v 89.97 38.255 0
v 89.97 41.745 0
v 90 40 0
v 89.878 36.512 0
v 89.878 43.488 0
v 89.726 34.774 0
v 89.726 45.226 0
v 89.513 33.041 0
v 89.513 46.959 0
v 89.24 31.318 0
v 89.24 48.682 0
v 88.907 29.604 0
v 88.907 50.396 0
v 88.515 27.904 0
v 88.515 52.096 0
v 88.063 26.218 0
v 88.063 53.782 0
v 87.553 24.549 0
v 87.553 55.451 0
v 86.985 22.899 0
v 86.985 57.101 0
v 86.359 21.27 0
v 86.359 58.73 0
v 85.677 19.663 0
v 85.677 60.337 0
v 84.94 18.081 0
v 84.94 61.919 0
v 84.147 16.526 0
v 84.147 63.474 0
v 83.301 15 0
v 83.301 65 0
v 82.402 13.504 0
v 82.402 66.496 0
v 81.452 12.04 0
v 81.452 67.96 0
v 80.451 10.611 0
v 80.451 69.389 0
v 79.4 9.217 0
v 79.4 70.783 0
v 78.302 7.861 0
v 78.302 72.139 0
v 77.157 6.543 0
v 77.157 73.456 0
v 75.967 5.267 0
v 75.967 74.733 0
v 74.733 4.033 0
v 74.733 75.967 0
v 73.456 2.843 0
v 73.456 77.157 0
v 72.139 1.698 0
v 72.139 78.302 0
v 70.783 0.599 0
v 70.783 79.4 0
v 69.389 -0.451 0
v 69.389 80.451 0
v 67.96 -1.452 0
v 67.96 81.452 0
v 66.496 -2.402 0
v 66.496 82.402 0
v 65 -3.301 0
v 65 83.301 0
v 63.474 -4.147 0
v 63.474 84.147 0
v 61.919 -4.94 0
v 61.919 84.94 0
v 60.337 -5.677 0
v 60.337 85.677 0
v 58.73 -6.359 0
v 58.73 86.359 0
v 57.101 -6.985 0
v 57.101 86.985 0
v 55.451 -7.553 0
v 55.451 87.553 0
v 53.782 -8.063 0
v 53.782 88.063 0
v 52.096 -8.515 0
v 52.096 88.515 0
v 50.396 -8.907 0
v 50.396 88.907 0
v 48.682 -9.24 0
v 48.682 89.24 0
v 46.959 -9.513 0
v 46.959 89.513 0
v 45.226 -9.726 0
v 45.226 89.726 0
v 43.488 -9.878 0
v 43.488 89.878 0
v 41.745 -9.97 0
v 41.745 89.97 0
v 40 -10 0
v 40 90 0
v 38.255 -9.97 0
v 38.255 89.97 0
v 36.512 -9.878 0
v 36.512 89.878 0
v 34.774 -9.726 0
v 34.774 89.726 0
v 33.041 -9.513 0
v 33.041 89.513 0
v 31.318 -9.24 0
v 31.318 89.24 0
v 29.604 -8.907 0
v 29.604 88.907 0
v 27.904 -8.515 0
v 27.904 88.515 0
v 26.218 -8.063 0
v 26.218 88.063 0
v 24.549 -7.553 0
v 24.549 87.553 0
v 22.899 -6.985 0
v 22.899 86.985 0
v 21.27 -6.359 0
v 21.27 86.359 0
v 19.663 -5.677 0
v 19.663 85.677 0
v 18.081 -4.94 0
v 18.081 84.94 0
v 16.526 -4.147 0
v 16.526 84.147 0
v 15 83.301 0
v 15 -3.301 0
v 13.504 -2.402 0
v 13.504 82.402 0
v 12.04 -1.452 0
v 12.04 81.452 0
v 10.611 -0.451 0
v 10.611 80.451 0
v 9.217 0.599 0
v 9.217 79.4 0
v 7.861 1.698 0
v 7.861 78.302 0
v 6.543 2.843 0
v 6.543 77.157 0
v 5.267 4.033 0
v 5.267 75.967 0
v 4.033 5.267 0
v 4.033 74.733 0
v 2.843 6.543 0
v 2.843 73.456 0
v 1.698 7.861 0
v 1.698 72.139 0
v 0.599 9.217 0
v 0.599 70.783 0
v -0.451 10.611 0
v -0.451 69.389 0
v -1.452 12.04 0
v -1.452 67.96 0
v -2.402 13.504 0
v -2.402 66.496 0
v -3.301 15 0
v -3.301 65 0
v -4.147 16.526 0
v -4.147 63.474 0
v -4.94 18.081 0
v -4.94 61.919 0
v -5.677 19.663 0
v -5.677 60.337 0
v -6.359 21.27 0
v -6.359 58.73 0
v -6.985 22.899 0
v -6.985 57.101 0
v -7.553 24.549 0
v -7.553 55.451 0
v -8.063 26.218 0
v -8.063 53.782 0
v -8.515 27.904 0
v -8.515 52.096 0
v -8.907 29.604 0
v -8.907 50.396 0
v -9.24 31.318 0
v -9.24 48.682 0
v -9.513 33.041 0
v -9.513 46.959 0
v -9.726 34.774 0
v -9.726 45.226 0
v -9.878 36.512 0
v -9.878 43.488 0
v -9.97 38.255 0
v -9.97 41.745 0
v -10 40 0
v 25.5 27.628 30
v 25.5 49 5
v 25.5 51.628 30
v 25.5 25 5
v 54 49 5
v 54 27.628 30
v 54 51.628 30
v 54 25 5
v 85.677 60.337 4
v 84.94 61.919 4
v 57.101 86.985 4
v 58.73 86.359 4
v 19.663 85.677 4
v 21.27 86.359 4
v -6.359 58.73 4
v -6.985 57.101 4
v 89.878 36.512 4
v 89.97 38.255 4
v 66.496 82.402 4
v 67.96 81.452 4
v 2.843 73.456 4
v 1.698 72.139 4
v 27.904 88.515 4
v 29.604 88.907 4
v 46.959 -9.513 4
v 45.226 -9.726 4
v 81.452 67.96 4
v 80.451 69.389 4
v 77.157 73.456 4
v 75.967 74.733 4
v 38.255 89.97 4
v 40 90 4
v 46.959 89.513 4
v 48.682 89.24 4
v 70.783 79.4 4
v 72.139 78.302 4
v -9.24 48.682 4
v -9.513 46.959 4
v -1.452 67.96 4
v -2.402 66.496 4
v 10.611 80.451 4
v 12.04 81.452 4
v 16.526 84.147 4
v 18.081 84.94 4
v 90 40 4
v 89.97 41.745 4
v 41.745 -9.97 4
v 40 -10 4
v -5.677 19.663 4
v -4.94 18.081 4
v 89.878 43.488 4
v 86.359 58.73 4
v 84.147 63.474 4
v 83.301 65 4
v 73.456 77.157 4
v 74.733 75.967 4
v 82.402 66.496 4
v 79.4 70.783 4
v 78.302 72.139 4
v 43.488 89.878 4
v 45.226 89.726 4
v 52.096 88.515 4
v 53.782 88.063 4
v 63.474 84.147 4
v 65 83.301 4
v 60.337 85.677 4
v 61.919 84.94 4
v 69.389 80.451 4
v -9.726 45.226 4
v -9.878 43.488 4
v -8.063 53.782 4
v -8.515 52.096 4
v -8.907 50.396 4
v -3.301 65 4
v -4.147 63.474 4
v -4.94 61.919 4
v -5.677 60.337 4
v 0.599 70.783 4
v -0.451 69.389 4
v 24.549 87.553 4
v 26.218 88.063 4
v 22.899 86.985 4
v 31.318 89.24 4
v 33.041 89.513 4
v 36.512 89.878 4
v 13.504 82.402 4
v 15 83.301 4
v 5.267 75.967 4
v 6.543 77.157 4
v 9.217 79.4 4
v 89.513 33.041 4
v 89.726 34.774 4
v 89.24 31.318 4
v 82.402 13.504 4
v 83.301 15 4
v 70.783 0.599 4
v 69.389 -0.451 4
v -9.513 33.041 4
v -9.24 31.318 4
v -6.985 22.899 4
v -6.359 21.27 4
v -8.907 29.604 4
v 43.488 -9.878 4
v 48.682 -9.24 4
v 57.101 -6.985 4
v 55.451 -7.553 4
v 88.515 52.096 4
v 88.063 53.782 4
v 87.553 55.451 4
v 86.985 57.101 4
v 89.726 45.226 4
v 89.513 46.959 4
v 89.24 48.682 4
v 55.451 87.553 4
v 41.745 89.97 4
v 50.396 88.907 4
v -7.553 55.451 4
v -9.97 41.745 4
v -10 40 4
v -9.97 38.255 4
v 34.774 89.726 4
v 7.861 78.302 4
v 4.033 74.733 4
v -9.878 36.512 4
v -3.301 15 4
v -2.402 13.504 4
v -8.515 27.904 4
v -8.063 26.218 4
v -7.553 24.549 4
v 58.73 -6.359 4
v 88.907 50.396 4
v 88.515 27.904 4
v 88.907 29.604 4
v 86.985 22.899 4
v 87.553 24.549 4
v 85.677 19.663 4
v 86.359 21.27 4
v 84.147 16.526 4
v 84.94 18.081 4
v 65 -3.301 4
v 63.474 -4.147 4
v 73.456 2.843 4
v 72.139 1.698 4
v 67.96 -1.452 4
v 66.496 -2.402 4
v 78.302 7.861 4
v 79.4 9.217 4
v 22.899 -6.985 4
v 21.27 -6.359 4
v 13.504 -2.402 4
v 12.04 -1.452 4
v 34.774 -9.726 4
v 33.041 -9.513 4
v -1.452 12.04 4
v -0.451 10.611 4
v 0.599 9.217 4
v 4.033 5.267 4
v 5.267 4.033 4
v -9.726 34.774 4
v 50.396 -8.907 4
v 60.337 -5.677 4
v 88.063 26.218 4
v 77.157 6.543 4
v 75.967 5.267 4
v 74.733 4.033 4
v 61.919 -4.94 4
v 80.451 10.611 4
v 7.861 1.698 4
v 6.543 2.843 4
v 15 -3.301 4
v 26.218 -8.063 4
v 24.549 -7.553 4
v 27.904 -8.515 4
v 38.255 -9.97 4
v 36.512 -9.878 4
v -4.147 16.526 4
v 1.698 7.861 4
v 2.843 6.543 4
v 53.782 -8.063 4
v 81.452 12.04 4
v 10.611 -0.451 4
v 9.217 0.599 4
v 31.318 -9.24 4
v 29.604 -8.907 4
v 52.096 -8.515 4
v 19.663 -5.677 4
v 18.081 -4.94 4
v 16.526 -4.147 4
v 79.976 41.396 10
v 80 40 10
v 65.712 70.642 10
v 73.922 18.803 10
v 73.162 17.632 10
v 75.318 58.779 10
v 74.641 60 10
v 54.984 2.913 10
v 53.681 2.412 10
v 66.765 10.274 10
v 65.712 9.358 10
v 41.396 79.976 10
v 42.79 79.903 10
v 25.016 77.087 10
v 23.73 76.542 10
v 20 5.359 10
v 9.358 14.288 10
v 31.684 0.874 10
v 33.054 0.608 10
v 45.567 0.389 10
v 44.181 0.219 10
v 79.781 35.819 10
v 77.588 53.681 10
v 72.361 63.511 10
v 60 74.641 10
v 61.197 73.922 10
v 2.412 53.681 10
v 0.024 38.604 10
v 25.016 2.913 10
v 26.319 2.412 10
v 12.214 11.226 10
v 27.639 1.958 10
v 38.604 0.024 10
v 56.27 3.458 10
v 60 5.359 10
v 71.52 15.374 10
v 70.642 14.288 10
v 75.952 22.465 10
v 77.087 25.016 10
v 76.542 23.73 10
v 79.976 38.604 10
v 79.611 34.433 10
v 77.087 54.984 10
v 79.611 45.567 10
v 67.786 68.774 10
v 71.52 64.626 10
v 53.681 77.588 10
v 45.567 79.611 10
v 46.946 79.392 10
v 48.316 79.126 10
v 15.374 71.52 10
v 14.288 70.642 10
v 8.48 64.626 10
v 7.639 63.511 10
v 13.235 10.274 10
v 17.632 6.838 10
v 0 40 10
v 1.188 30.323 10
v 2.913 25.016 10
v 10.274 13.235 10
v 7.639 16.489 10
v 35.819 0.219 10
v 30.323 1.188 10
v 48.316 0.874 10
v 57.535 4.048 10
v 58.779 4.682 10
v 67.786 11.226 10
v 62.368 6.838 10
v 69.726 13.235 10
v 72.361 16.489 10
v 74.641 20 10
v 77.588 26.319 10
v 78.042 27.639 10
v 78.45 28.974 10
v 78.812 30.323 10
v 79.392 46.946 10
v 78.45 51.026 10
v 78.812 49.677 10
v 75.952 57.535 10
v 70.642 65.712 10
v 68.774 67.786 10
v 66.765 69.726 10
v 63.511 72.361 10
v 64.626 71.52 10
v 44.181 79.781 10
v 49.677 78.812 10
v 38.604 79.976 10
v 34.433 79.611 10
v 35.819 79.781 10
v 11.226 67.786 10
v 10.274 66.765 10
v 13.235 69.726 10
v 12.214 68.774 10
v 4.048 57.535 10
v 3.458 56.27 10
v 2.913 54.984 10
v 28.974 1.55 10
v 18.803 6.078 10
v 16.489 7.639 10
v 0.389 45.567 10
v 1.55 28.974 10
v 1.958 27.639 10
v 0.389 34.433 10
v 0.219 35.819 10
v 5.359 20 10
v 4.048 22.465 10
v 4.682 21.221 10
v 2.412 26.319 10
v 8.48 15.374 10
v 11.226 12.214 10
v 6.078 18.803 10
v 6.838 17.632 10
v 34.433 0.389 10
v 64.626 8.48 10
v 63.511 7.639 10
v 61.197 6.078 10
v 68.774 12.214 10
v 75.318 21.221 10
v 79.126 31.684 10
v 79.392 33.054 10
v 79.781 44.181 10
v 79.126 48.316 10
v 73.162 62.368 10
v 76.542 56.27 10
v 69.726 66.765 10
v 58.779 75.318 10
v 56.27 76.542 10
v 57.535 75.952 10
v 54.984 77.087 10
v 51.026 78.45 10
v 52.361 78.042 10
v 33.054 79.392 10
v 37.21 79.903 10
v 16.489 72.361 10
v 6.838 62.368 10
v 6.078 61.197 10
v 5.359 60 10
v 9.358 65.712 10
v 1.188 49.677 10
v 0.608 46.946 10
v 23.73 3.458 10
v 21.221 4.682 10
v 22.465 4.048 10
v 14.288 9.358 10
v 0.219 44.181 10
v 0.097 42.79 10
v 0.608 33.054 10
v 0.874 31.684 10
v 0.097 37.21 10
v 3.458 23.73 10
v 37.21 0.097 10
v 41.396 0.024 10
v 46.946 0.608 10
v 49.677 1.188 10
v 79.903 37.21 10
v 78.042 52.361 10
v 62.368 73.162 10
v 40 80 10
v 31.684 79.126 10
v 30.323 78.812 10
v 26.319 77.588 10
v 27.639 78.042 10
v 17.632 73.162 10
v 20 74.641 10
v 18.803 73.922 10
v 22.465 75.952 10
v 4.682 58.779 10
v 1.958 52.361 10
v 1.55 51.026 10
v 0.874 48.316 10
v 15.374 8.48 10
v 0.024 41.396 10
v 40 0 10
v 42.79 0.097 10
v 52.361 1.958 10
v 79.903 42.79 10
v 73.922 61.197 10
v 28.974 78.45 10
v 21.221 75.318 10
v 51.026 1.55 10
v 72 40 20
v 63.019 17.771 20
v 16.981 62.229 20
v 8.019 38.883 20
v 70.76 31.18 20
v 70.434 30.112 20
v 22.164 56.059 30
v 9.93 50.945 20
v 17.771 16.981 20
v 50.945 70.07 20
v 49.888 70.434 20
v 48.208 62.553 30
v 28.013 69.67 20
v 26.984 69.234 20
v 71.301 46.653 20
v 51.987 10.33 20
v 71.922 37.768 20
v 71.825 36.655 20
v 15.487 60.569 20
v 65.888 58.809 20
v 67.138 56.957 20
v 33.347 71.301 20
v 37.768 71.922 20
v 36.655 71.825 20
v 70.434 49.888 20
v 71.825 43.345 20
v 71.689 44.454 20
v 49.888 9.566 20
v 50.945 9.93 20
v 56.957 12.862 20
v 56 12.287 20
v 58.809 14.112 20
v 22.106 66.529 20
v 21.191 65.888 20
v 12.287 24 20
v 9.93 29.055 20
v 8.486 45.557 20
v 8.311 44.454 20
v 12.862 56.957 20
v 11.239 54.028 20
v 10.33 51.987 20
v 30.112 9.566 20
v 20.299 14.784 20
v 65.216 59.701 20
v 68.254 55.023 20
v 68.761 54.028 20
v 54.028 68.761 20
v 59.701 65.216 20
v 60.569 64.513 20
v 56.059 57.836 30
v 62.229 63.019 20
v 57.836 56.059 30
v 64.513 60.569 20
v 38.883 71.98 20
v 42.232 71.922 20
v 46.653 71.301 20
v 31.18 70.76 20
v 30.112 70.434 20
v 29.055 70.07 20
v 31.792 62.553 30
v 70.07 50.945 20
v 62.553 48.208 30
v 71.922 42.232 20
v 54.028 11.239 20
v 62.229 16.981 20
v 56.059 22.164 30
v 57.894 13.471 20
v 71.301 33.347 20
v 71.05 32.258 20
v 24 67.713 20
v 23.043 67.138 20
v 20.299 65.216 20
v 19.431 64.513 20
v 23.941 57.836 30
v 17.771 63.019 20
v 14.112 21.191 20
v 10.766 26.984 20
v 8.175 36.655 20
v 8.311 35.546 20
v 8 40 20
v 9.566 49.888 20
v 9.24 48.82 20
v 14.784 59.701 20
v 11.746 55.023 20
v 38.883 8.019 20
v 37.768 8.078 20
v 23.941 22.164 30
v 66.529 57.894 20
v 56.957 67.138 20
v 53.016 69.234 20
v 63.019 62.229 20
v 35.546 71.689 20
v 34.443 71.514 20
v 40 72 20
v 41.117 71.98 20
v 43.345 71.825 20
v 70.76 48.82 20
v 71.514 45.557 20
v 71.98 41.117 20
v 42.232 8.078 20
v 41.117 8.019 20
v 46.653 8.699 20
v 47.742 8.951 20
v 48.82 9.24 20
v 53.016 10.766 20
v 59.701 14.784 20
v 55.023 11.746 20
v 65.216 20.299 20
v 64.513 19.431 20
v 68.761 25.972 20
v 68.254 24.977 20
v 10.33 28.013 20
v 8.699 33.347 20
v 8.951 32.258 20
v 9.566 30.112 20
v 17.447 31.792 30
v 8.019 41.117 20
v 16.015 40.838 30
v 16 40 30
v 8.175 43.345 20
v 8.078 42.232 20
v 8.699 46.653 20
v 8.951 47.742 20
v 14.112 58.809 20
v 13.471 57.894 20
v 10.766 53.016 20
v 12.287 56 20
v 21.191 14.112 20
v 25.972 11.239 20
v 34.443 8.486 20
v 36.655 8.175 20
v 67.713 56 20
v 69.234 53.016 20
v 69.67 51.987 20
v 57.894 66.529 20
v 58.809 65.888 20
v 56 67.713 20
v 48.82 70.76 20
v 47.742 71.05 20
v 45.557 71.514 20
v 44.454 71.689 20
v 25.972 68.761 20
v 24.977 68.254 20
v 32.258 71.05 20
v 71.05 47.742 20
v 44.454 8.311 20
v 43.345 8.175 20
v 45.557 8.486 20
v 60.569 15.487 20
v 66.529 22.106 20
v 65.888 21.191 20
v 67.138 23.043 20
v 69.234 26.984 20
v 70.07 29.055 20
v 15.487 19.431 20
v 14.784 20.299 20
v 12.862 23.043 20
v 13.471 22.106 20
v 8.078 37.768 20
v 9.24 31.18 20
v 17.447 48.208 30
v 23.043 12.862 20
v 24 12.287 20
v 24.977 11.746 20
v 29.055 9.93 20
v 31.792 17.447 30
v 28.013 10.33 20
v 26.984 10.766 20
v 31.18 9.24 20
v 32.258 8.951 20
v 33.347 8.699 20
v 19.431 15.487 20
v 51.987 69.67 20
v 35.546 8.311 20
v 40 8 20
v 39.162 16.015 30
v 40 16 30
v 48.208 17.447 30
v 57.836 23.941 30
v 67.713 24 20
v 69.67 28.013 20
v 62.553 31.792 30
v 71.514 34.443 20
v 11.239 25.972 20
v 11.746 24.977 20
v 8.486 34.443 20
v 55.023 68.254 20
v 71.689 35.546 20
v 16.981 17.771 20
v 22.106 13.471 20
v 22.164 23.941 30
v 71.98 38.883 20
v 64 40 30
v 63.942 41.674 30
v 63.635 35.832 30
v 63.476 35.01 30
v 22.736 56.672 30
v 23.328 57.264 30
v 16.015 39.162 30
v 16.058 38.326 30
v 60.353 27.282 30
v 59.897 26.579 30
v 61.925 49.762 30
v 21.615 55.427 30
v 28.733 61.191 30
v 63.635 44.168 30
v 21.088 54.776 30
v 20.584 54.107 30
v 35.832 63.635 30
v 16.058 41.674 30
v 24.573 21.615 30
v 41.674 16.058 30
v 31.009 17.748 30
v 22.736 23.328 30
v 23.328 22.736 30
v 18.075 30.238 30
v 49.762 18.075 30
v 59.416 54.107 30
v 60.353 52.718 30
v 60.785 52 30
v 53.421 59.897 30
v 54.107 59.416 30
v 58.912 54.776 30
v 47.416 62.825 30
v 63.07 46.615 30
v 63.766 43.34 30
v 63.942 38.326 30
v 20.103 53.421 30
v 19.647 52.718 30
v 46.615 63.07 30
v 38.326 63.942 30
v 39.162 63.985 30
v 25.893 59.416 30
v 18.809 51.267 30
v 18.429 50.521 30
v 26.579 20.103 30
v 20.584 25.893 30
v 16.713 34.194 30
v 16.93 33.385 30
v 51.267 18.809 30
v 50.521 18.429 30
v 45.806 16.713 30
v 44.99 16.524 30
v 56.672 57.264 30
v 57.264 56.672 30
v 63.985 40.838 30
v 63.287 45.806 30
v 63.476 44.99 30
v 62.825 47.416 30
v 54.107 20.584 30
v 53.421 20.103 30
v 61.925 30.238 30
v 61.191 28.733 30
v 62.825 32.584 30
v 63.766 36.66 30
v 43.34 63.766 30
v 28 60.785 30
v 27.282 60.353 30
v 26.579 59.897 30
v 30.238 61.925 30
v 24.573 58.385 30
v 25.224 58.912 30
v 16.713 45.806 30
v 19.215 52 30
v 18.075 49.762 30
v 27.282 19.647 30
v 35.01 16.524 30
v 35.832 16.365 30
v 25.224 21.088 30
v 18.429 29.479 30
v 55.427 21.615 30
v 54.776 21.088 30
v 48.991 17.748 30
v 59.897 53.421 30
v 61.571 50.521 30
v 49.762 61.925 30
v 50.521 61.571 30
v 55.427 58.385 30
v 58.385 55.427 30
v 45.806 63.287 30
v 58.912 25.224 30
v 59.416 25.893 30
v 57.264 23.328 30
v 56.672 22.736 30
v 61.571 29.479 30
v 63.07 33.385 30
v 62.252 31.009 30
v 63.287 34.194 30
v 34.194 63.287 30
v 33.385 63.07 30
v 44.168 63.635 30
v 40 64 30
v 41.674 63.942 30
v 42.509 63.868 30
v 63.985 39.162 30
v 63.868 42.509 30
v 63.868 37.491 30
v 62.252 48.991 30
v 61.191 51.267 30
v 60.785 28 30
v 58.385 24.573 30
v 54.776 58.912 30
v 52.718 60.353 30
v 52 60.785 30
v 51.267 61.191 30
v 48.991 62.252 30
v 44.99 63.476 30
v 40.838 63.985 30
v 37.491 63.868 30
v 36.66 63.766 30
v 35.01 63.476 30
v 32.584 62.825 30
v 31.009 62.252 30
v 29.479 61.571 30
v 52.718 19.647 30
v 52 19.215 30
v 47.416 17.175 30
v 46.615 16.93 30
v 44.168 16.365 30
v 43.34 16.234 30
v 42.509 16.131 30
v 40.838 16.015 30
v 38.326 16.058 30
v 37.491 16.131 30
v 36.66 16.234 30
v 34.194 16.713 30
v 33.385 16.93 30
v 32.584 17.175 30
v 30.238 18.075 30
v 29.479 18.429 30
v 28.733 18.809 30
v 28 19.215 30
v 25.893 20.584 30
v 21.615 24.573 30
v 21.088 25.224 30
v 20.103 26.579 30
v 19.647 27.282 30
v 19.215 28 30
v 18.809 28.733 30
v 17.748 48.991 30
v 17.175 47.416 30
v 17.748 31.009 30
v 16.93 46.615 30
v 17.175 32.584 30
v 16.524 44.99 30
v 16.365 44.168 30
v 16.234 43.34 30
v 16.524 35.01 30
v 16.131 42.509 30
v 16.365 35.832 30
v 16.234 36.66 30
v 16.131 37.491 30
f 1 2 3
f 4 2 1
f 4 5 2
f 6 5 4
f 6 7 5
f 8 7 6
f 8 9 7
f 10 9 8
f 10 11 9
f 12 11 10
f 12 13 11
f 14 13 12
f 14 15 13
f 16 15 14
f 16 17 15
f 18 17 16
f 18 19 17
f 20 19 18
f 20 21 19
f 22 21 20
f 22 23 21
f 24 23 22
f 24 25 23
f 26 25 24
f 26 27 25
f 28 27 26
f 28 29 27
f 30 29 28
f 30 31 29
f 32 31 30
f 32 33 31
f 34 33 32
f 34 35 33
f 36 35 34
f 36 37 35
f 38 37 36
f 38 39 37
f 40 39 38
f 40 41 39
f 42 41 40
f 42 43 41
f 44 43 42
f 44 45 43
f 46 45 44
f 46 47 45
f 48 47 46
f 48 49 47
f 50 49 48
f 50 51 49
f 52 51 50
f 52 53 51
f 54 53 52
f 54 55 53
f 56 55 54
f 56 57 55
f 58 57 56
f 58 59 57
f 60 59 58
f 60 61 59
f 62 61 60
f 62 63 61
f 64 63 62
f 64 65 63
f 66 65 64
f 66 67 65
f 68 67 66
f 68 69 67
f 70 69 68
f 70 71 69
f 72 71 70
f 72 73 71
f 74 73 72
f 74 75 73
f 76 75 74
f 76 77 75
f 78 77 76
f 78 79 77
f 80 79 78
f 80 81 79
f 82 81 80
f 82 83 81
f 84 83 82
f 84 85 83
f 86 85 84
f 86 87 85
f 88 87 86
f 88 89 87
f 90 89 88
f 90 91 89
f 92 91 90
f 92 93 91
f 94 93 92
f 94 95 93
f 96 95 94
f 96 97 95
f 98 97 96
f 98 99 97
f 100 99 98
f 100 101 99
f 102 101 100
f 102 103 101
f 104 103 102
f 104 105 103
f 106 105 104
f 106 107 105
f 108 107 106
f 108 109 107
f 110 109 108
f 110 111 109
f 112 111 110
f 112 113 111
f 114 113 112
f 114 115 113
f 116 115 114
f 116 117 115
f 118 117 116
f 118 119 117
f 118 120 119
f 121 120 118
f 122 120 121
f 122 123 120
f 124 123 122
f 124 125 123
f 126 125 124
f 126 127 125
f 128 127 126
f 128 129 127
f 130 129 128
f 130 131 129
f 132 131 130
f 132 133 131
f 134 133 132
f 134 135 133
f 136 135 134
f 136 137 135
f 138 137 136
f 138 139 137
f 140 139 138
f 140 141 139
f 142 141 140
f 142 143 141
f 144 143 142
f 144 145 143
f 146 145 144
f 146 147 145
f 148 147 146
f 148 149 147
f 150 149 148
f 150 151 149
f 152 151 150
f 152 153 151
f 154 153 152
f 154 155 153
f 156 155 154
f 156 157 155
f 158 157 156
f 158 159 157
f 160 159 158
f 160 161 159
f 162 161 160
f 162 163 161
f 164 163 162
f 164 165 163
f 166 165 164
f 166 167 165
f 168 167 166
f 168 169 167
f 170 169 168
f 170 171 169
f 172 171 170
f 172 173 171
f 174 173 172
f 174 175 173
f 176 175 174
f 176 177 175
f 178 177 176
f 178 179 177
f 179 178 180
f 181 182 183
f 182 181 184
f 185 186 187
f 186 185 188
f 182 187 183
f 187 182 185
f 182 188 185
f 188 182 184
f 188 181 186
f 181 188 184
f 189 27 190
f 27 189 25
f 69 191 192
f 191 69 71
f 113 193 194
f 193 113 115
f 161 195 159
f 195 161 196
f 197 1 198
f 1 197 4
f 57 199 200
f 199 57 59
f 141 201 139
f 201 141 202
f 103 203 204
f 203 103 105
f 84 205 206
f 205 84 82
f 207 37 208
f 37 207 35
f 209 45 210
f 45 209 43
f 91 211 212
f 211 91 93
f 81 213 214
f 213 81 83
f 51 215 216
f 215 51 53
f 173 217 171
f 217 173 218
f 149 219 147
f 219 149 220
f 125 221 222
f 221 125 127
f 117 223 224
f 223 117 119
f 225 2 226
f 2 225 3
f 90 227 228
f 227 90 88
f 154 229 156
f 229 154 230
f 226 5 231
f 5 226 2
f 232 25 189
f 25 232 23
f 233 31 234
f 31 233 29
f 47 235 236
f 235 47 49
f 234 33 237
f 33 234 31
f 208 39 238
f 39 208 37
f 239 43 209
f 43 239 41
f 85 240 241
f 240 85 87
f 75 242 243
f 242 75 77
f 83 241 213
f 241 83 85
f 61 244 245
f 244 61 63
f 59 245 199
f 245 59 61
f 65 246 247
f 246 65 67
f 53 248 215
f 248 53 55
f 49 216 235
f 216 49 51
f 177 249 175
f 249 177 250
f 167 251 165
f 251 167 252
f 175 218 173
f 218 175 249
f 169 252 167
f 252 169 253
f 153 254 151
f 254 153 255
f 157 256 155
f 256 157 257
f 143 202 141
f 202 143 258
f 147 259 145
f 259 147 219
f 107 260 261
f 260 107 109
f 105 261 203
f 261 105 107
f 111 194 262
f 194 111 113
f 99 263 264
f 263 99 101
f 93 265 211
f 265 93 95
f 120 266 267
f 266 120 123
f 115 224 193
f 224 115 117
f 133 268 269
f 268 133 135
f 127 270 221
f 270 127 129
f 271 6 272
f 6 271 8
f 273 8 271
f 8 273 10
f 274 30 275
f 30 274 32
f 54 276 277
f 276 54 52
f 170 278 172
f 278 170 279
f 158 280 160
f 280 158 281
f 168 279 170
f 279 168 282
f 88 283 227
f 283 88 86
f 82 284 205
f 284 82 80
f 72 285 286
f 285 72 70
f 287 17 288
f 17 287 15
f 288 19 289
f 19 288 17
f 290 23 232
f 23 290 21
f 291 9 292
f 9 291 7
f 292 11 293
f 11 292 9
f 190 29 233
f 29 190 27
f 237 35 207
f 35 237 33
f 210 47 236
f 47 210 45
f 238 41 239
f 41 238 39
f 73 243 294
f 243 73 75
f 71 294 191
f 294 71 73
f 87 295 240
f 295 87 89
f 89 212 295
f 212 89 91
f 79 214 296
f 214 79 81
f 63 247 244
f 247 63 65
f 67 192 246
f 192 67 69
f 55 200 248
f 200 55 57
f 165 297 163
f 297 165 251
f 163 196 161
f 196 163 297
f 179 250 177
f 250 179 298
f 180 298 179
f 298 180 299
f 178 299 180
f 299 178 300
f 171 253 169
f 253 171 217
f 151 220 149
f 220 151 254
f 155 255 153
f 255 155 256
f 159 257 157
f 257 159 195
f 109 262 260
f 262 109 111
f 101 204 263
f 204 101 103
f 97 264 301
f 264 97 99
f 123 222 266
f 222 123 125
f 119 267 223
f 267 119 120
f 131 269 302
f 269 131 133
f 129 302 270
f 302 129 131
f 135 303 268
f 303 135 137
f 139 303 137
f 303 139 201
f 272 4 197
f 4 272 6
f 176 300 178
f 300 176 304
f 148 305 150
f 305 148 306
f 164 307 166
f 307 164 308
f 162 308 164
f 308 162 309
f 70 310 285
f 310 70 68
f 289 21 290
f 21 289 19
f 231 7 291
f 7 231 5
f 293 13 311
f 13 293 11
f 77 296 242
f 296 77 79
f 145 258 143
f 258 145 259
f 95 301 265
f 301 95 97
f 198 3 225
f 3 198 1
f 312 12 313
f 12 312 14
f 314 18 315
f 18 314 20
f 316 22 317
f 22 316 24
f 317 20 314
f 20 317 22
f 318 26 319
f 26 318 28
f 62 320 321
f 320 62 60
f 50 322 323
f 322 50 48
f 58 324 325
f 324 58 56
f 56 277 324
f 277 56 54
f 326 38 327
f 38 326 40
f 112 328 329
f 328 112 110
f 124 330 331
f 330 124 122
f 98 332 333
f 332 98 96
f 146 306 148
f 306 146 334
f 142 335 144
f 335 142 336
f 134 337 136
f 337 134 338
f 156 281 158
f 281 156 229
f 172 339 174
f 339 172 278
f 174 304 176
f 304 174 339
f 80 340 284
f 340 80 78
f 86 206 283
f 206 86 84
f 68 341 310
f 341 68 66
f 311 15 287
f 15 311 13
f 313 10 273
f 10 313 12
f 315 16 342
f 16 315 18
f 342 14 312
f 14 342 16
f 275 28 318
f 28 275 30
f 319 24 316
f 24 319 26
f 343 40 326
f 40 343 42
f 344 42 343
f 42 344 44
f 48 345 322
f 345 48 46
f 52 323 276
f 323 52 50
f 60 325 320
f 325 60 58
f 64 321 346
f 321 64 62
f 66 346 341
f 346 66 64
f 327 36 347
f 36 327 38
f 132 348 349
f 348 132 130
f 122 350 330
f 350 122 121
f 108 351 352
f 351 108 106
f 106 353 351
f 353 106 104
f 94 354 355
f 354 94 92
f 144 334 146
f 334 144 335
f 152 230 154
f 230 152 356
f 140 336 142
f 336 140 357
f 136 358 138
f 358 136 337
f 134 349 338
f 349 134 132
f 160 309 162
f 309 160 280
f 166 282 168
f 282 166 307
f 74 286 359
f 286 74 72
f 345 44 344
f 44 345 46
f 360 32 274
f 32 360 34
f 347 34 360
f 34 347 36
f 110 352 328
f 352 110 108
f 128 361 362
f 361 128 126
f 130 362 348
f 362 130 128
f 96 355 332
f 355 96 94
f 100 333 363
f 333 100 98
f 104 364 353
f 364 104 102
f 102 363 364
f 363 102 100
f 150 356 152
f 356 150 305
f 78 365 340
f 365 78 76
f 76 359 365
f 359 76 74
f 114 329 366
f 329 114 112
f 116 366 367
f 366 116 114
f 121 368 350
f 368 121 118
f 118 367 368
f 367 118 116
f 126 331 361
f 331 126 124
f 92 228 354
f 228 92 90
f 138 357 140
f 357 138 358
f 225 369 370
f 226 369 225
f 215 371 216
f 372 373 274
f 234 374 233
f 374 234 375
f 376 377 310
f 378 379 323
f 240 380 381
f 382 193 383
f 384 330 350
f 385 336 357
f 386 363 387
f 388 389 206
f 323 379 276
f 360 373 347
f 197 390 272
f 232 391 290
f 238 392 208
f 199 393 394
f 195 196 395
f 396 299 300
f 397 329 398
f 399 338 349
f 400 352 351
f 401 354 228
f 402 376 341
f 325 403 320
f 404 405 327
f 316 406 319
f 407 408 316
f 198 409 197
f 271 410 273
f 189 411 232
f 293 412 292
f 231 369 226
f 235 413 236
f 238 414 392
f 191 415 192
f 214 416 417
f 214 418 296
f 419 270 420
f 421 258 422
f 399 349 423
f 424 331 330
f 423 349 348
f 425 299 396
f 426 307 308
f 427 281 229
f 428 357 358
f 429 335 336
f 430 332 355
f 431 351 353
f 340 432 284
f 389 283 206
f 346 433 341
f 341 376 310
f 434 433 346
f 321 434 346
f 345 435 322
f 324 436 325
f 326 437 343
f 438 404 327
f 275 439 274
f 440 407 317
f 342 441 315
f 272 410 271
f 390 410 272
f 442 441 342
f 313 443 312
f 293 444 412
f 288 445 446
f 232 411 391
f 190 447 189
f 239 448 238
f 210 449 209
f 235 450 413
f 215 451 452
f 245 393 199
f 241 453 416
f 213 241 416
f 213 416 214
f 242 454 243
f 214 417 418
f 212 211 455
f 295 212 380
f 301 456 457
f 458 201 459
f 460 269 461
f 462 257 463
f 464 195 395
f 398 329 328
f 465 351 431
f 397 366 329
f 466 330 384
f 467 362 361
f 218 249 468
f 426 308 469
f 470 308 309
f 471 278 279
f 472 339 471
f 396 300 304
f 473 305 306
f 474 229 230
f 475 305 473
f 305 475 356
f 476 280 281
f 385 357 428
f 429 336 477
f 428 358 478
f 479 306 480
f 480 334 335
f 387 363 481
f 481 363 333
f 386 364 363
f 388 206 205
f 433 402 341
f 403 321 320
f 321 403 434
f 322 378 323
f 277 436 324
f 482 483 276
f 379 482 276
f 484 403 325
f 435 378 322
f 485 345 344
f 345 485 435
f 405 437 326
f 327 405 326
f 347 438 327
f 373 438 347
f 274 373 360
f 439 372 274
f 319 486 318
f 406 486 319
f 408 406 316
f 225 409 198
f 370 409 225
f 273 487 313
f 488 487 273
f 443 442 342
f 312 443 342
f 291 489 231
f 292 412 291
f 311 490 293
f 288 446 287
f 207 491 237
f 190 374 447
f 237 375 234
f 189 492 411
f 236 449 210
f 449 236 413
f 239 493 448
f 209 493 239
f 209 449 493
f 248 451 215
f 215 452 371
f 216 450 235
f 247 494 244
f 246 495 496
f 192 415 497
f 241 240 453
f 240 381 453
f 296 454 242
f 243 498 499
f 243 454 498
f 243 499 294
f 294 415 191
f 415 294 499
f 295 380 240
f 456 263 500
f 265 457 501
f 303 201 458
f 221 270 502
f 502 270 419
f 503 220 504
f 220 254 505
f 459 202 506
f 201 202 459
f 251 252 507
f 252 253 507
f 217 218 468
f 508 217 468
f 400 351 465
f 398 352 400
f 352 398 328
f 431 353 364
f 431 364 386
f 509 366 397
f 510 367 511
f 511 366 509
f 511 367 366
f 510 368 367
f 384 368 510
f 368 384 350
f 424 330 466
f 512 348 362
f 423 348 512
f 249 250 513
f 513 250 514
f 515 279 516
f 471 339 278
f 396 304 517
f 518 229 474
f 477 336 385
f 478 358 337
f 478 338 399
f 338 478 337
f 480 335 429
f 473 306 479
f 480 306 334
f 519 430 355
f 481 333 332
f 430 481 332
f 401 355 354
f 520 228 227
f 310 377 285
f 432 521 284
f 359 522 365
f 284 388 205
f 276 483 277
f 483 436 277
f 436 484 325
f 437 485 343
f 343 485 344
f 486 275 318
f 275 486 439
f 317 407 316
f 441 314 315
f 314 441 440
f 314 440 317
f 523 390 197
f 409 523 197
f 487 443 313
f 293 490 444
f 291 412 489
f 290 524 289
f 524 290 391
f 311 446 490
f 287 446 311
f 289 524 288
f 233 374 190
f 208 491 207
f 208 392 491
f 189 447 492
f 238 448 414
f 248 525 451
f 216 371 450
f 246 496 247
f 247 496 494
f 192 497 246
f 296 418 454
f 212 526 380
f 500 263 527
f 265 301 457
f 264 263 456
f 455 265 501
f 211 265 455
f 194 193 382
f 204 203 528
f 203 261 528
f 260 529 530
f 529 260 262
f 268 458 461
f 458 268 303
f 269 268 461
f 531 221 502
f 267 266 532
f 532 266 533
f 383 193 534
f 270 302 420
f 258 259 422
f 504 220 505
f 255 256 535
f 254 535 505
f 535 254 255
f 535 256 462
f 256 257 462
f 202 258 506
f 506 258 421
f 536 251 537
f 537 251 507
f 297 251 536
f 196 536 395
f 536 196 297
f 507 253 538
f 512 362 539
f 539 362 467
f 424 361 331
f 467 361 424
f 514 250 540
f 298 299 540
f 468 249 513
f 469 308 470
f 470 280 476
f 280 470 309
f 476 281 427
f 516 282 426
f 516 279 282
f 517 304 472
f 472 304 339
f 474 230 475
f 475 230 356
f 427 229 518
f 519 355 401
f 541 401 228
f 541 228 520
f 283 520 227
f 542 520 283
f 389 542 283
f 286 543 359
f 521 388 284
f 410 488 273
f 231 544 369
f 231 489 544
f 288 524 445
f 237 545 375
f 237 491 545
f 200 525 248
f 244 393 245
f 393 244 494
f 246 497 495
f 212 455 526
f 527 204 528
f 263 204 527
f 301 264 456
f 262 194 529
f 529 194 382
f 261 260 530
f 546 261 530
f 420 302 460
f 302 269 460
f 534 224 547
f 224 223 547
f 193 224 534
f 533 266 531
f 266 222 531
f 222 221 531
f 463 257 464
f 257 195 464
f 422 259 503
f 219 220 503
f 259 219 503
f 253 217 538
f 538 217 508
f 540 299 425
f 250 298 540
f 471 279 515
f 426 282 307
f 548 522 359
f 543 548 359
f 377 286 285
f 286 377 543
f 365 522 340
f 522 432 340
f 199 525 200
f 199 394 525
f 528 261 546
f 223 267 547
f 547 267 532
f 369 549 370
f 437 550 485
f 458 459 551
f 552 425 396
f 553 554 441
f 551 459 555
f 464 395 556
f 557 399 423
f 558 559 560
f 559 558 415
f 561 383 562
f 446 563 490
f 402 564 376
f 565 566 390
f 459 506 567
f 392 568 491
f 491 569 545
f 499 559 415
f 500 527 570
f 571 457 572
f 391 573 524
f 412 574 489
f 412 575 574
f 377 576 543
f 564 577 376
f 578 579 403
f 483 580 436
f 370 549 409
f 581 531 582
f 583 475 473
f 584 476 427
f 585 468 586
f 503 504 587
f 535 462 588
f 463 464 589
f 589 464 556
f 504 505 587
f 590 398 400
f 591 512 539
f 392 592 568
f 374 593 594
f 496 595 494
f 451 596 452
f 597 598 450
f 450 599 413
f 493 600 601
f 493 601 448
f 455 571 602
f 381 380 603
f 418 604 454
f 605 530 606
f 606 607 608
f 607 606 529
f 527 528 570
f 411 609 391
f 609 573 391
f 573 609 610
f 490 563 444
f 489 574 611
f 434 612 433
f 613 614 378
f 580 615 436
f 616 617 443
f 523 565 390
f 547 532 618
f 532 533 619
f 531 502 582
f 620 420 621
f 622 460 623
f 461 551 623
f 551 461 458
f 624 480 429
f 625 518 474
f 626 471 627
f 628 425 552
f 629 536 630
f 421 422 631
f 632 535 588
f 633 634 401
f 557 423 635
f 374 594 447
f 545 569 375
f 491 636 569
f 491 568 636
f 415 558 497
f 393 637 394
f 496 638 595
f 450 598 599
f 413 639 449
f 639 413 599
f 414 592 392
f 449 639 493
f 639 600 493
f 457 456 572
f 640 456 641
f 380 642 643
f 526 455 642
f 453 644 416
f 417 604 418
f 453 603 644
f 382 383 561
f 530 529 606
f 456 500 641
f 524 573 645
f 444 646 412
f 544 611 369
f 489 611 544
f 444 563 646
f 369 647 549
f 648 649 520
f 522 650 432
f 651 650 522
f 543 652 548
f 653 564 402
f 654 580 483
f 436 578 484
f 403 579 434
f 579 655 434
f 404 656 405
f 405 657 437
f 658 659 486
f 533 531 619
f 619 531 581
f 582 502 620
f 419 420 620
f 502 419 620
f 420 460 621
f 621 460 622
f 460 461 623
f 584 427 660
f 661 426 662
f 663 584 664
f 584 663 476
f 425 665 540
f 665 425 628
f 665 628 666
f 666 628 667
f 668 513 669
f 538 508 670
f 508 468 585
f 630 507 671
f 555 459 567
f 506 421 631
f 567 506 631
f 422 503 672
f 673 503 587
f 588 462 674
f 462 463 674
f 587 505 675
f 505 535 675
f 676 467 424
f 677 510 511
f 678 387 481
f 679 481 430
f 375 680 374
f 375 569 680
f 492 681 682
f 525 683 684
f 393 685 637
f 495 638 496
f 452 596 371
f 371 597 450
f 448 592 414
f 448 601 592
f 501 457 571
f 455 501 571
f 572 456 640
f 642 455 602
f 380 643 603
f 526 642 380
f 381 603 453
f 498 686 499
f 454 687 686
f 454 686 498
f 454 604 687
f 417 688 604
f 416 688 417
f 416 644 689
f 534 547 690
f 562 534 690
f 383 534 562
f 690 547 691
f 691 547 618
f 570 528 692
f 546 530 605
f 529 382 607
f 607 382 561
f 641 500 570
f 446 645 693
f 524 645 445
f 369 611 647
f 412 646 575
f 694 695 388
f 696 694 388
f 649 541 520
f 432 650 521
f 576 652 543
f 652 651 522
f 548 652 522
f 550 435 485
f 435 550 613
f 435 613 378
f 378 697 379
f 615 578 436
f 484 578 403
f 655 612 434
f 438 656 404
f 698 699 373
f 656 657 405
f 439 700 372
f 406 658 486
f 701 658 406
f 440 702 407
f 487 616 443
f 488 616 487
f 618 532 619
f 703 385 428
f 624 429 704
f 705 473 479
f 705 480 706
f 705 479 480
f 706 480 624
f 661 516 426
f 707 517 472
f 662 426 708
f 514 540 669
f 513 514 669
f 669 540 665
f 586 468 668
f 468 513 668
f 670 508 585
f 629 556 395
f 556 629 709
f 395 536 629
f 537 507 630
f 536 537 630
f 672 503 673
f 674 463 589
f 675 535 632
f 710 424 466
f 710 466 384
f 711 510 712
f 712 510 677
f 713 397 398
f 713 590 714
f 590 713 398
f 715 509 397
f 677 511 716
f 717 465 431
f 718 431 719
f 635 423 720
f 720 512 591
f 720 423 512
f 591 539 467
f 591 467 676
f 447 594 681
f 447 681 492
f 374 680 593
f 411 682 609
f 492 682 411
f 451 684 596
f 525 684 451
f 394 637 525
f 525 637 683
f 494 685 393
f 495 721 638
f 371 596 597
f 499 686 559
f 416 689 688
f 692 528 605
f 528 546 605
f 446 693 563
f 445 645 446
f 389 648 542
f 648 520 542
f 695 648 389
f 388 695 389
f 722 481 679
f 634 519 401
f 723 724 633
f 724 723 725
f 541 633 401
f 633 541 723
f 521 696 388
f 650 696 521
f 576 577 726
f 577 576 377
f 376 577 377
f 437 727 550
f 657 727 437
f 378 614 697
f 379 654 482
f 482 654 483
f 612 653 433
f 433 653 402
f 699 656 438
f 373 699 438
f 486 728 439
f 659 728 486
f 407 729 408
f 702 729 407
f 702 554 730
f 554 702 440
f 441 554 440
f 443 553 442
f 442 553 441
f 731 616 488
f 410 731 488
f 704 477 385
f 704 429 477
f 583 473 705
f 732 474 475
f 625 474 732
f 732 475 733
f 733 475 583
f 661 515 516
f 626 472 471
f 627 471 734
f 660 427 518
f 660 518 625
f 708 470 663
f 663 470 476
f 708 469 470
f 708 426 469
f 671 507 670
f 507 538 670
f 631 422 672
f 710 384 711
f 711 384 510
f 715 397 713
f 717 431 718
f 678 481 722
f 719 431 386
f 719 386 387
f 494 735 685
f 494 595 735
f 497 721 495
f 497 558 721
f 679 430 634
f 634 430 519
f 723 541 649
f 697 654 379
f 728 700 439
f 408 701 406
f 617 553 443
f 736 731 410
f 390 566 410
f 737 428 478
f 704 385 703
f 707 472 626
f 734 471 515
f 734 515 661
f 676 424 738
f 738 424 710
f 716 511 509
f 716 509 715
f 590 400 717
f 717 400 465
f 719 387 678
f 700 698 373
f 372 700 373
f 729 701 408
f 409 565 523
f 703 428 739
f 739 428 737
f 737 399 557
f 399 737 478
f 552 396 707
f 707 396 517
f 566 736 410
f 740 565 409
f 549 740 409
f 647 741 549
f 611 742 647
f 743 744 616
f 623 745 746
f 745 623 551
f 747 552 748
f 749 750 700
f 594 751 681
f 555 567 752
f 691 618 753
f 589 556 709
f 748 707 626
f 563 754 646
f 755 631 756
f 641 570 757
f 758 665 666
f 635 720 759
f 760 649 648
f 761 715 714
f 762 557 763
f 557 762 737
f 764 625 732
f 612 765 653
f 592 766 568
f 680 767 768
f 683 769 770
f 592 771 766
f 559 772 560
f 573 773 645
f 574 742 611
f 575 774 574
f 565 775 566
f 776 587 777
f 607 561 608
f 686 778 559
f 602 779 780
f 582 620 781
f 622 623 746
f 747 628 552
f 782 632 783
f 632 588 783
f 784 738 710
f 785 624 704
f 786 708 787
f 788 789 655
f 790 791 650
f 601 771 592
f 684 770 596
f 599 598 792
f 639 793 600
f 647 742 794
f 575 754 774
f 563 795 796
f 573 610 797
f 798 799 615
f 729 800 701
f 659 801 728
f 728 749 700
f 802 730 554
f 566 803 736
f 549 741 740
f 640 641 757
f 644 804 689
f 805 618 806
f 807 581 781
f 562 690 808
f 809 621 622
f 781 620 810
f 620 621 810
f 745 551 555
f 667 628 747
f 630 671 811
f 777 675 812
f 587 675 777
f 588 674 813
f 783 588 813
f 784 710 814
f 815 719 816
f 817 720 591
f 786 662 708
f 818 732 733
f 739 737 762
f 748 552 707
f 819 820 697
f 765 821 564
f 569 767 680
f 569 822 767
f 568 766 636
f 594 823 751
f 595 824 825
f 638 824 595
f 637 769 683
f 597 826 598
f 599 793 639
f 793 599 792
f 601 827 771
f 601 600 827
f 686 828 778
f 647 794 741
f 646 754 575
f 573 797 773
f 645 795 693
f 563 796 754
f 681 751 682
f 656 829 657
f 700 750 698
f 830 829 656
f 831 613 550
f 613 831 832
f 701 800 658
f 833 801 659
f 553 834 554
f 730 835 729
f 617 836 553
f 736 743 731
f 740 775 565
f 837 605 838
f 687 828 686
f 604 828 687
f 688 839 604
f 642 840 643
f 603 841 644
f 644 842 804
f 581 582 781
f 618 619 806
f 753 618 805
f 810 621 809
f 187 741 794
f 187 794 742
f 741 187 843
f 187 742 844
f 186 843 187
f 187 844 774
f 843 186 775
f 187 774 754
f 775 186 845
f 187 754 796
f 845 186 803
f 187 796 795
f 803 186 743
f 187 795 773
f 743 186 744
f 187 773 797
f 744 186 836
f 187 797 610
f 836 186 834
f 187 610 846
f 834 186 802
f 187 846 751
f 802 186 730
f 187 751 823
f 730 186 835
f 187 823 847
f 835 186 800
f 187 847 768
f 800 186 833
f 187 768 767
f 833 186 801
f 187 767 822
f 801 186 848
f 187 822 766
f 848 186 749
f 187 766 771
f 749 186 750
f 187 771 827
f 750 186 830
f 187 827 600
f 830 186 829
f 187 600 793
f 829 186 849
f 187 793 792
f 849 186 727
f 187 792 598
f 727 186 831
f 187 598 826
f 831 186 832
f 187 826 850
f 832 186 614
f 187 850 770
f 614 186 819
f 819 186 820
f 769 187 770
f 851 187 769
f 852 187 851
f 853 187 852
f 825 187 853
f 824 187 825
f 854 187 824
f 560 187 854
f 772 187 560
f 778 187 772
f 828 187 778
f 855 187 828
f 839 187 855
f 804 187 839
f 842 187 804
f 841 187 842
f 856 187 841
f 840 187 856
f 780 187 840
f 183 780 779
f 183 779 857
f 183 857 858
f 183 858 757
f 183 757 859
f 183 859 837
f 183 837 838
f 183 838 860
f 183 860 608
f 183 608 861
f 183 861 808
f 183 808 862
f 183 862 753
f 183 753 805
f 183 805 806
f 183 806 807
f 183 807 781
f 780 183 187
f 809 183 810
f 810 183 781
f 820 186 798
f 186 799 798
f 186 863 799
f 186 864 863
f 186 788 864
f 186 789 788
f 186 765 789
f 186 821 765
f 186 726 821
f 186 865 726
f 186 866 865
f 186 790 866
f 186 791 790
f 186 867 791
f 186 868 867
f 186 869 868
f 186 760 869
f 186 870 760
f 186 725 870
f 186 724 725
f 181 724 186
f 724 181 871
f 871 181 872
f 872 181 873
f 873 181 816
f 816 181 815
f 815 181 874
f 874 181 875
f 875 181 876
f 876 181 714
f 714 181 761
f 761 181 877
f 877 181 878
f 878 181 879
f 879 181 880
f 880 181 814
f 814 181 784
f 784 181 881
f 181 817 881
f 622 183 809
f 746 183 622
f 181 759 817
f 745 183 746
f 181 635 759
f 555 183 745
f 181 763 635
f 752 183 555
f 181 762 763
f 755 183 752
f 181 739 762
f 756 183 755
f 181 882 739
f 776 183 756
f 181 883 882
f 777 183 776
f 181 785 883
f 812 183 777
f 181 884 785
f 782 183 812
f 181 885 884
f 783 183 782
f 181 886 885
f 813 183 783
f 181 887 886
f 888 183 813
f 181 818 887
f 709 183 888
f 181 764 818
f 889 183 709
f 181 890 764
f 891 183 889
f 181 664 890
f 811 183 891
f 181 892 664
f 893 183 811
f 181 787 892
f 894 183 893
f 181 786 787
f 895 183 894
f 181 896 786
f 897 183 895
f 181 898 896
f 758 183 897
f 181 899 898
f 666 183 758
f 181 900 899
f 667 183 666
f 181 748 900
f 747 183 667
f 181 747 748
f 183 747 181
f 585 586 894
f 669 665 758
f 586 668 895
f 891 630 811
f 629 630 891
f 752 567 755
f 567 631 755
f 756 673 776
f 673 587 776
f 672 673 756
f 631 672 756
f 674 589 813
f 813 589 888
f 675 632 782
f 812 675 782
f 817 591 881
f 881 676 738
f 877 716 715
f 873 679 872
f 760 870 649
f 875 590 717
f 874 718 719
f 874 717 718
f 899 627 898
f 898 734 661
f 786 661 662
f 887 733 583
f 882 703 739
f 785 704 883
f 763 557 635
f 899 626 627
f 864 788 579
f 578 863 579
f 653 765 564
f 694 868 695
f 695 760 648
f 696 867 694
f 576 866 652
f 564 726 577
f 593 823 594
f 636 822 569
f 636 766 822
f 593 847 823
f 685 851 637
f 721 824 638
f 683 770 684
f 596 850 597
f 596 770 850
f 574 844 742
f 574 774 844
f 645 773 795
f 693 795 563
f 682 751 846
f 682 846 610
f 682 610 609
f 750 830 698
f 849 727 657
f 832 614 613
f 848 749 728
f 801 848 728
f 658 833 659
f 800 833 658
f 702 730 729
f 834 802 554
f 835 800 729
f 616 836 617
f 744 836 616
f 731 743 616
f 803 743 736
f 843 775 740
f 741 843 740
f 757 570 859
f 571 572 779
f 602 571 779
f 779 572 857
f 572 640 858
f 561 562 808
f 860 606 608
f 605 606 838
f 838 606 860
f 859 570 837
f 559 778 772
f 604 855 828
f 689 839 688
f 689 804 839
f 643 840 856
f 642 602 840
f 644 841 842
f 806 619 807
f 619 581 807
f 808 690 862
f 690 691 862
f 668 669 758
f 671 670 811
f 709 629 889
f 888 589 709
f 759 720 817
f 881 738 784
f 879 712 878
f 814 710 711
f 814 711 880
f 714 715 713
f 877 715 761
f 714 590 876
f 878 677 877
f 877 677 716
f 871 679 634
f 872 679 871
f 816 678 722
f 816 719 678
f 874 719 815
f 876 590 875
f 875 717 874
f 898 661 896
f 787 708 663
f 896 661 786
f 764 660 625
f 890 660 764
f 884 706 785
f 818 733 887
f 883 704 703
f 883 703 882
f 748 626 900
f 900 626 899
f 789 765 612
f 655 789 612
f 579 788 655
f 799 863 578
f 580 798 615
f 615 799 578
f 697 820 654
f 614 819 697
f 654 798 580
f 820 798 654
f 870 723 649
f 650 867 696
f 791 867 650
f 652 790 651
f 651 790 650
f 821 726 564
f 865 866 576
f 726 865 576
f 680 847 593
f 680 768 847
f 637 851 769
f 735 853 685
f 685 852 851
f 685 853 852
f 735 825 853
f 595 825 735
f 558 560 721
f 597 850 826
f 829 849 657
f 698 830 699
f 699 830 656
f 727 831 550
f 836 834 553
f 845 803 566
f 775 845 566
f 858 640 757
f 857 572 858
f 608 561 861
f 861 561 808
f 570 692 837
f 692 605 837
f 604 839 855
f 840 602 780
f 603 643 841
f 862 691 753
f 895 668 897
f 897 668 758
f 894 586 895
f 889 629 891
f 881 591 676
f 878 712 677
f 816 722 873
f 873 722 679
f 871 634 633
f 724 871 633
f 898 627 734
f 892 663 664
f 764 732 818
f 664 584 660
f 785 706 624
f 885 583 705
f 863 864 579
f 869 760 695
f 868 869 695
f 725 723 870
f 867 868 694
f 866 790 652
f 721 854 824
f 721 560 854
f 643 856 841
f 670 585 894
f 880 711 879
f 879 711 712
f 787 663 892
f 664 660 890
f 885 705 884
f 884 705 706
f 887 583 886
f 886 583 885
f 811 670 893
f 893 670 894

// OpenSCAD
// skew module is taken from:
// https://gist.github.com/boredzo/fde487c724a40a26fa9c

/*skew takes an array of six angles:
 *x along y
 *x along z
 *y along x
 *y along z
 *z along x
 *z along y
 */
module skew(dims) {
matrix = [
	[ 1, tan(dims[0]), tan(dims[1]), 0 ],
	[ tan(dims[2]), 1, tan(dims[3]), 0 ],
	[ tan(dims[4]), tan(dims[5]), 1, 0 ],
	[ 0, 0, 0, 1 ]
];
multmatrix(matrix)
children();
}


module pad()
{
intersection()
{
    difference()
    {
        translate([-20,-20,0])cube([120,120,60]);
        translate([25.5,25,5])skew([0,0,0,6,0,0]) cube([28.5,24,55.5]);  
    }
    union()
    {
        translate([40,40,0])cylinder(r1=50, r2=50, h=4, $fn=180);    
        translate([40,40,4])cylinder(r1=50, r2=40, h=6, $fn=180);    
        translate([40,40,10])cylinder(r1=40, r2=32, h=10, $fn=180);    
        translate([40,40,20])cylinder(r1=32, r2=24, h=10, $fn=180);    
    }
}
}

pad();
